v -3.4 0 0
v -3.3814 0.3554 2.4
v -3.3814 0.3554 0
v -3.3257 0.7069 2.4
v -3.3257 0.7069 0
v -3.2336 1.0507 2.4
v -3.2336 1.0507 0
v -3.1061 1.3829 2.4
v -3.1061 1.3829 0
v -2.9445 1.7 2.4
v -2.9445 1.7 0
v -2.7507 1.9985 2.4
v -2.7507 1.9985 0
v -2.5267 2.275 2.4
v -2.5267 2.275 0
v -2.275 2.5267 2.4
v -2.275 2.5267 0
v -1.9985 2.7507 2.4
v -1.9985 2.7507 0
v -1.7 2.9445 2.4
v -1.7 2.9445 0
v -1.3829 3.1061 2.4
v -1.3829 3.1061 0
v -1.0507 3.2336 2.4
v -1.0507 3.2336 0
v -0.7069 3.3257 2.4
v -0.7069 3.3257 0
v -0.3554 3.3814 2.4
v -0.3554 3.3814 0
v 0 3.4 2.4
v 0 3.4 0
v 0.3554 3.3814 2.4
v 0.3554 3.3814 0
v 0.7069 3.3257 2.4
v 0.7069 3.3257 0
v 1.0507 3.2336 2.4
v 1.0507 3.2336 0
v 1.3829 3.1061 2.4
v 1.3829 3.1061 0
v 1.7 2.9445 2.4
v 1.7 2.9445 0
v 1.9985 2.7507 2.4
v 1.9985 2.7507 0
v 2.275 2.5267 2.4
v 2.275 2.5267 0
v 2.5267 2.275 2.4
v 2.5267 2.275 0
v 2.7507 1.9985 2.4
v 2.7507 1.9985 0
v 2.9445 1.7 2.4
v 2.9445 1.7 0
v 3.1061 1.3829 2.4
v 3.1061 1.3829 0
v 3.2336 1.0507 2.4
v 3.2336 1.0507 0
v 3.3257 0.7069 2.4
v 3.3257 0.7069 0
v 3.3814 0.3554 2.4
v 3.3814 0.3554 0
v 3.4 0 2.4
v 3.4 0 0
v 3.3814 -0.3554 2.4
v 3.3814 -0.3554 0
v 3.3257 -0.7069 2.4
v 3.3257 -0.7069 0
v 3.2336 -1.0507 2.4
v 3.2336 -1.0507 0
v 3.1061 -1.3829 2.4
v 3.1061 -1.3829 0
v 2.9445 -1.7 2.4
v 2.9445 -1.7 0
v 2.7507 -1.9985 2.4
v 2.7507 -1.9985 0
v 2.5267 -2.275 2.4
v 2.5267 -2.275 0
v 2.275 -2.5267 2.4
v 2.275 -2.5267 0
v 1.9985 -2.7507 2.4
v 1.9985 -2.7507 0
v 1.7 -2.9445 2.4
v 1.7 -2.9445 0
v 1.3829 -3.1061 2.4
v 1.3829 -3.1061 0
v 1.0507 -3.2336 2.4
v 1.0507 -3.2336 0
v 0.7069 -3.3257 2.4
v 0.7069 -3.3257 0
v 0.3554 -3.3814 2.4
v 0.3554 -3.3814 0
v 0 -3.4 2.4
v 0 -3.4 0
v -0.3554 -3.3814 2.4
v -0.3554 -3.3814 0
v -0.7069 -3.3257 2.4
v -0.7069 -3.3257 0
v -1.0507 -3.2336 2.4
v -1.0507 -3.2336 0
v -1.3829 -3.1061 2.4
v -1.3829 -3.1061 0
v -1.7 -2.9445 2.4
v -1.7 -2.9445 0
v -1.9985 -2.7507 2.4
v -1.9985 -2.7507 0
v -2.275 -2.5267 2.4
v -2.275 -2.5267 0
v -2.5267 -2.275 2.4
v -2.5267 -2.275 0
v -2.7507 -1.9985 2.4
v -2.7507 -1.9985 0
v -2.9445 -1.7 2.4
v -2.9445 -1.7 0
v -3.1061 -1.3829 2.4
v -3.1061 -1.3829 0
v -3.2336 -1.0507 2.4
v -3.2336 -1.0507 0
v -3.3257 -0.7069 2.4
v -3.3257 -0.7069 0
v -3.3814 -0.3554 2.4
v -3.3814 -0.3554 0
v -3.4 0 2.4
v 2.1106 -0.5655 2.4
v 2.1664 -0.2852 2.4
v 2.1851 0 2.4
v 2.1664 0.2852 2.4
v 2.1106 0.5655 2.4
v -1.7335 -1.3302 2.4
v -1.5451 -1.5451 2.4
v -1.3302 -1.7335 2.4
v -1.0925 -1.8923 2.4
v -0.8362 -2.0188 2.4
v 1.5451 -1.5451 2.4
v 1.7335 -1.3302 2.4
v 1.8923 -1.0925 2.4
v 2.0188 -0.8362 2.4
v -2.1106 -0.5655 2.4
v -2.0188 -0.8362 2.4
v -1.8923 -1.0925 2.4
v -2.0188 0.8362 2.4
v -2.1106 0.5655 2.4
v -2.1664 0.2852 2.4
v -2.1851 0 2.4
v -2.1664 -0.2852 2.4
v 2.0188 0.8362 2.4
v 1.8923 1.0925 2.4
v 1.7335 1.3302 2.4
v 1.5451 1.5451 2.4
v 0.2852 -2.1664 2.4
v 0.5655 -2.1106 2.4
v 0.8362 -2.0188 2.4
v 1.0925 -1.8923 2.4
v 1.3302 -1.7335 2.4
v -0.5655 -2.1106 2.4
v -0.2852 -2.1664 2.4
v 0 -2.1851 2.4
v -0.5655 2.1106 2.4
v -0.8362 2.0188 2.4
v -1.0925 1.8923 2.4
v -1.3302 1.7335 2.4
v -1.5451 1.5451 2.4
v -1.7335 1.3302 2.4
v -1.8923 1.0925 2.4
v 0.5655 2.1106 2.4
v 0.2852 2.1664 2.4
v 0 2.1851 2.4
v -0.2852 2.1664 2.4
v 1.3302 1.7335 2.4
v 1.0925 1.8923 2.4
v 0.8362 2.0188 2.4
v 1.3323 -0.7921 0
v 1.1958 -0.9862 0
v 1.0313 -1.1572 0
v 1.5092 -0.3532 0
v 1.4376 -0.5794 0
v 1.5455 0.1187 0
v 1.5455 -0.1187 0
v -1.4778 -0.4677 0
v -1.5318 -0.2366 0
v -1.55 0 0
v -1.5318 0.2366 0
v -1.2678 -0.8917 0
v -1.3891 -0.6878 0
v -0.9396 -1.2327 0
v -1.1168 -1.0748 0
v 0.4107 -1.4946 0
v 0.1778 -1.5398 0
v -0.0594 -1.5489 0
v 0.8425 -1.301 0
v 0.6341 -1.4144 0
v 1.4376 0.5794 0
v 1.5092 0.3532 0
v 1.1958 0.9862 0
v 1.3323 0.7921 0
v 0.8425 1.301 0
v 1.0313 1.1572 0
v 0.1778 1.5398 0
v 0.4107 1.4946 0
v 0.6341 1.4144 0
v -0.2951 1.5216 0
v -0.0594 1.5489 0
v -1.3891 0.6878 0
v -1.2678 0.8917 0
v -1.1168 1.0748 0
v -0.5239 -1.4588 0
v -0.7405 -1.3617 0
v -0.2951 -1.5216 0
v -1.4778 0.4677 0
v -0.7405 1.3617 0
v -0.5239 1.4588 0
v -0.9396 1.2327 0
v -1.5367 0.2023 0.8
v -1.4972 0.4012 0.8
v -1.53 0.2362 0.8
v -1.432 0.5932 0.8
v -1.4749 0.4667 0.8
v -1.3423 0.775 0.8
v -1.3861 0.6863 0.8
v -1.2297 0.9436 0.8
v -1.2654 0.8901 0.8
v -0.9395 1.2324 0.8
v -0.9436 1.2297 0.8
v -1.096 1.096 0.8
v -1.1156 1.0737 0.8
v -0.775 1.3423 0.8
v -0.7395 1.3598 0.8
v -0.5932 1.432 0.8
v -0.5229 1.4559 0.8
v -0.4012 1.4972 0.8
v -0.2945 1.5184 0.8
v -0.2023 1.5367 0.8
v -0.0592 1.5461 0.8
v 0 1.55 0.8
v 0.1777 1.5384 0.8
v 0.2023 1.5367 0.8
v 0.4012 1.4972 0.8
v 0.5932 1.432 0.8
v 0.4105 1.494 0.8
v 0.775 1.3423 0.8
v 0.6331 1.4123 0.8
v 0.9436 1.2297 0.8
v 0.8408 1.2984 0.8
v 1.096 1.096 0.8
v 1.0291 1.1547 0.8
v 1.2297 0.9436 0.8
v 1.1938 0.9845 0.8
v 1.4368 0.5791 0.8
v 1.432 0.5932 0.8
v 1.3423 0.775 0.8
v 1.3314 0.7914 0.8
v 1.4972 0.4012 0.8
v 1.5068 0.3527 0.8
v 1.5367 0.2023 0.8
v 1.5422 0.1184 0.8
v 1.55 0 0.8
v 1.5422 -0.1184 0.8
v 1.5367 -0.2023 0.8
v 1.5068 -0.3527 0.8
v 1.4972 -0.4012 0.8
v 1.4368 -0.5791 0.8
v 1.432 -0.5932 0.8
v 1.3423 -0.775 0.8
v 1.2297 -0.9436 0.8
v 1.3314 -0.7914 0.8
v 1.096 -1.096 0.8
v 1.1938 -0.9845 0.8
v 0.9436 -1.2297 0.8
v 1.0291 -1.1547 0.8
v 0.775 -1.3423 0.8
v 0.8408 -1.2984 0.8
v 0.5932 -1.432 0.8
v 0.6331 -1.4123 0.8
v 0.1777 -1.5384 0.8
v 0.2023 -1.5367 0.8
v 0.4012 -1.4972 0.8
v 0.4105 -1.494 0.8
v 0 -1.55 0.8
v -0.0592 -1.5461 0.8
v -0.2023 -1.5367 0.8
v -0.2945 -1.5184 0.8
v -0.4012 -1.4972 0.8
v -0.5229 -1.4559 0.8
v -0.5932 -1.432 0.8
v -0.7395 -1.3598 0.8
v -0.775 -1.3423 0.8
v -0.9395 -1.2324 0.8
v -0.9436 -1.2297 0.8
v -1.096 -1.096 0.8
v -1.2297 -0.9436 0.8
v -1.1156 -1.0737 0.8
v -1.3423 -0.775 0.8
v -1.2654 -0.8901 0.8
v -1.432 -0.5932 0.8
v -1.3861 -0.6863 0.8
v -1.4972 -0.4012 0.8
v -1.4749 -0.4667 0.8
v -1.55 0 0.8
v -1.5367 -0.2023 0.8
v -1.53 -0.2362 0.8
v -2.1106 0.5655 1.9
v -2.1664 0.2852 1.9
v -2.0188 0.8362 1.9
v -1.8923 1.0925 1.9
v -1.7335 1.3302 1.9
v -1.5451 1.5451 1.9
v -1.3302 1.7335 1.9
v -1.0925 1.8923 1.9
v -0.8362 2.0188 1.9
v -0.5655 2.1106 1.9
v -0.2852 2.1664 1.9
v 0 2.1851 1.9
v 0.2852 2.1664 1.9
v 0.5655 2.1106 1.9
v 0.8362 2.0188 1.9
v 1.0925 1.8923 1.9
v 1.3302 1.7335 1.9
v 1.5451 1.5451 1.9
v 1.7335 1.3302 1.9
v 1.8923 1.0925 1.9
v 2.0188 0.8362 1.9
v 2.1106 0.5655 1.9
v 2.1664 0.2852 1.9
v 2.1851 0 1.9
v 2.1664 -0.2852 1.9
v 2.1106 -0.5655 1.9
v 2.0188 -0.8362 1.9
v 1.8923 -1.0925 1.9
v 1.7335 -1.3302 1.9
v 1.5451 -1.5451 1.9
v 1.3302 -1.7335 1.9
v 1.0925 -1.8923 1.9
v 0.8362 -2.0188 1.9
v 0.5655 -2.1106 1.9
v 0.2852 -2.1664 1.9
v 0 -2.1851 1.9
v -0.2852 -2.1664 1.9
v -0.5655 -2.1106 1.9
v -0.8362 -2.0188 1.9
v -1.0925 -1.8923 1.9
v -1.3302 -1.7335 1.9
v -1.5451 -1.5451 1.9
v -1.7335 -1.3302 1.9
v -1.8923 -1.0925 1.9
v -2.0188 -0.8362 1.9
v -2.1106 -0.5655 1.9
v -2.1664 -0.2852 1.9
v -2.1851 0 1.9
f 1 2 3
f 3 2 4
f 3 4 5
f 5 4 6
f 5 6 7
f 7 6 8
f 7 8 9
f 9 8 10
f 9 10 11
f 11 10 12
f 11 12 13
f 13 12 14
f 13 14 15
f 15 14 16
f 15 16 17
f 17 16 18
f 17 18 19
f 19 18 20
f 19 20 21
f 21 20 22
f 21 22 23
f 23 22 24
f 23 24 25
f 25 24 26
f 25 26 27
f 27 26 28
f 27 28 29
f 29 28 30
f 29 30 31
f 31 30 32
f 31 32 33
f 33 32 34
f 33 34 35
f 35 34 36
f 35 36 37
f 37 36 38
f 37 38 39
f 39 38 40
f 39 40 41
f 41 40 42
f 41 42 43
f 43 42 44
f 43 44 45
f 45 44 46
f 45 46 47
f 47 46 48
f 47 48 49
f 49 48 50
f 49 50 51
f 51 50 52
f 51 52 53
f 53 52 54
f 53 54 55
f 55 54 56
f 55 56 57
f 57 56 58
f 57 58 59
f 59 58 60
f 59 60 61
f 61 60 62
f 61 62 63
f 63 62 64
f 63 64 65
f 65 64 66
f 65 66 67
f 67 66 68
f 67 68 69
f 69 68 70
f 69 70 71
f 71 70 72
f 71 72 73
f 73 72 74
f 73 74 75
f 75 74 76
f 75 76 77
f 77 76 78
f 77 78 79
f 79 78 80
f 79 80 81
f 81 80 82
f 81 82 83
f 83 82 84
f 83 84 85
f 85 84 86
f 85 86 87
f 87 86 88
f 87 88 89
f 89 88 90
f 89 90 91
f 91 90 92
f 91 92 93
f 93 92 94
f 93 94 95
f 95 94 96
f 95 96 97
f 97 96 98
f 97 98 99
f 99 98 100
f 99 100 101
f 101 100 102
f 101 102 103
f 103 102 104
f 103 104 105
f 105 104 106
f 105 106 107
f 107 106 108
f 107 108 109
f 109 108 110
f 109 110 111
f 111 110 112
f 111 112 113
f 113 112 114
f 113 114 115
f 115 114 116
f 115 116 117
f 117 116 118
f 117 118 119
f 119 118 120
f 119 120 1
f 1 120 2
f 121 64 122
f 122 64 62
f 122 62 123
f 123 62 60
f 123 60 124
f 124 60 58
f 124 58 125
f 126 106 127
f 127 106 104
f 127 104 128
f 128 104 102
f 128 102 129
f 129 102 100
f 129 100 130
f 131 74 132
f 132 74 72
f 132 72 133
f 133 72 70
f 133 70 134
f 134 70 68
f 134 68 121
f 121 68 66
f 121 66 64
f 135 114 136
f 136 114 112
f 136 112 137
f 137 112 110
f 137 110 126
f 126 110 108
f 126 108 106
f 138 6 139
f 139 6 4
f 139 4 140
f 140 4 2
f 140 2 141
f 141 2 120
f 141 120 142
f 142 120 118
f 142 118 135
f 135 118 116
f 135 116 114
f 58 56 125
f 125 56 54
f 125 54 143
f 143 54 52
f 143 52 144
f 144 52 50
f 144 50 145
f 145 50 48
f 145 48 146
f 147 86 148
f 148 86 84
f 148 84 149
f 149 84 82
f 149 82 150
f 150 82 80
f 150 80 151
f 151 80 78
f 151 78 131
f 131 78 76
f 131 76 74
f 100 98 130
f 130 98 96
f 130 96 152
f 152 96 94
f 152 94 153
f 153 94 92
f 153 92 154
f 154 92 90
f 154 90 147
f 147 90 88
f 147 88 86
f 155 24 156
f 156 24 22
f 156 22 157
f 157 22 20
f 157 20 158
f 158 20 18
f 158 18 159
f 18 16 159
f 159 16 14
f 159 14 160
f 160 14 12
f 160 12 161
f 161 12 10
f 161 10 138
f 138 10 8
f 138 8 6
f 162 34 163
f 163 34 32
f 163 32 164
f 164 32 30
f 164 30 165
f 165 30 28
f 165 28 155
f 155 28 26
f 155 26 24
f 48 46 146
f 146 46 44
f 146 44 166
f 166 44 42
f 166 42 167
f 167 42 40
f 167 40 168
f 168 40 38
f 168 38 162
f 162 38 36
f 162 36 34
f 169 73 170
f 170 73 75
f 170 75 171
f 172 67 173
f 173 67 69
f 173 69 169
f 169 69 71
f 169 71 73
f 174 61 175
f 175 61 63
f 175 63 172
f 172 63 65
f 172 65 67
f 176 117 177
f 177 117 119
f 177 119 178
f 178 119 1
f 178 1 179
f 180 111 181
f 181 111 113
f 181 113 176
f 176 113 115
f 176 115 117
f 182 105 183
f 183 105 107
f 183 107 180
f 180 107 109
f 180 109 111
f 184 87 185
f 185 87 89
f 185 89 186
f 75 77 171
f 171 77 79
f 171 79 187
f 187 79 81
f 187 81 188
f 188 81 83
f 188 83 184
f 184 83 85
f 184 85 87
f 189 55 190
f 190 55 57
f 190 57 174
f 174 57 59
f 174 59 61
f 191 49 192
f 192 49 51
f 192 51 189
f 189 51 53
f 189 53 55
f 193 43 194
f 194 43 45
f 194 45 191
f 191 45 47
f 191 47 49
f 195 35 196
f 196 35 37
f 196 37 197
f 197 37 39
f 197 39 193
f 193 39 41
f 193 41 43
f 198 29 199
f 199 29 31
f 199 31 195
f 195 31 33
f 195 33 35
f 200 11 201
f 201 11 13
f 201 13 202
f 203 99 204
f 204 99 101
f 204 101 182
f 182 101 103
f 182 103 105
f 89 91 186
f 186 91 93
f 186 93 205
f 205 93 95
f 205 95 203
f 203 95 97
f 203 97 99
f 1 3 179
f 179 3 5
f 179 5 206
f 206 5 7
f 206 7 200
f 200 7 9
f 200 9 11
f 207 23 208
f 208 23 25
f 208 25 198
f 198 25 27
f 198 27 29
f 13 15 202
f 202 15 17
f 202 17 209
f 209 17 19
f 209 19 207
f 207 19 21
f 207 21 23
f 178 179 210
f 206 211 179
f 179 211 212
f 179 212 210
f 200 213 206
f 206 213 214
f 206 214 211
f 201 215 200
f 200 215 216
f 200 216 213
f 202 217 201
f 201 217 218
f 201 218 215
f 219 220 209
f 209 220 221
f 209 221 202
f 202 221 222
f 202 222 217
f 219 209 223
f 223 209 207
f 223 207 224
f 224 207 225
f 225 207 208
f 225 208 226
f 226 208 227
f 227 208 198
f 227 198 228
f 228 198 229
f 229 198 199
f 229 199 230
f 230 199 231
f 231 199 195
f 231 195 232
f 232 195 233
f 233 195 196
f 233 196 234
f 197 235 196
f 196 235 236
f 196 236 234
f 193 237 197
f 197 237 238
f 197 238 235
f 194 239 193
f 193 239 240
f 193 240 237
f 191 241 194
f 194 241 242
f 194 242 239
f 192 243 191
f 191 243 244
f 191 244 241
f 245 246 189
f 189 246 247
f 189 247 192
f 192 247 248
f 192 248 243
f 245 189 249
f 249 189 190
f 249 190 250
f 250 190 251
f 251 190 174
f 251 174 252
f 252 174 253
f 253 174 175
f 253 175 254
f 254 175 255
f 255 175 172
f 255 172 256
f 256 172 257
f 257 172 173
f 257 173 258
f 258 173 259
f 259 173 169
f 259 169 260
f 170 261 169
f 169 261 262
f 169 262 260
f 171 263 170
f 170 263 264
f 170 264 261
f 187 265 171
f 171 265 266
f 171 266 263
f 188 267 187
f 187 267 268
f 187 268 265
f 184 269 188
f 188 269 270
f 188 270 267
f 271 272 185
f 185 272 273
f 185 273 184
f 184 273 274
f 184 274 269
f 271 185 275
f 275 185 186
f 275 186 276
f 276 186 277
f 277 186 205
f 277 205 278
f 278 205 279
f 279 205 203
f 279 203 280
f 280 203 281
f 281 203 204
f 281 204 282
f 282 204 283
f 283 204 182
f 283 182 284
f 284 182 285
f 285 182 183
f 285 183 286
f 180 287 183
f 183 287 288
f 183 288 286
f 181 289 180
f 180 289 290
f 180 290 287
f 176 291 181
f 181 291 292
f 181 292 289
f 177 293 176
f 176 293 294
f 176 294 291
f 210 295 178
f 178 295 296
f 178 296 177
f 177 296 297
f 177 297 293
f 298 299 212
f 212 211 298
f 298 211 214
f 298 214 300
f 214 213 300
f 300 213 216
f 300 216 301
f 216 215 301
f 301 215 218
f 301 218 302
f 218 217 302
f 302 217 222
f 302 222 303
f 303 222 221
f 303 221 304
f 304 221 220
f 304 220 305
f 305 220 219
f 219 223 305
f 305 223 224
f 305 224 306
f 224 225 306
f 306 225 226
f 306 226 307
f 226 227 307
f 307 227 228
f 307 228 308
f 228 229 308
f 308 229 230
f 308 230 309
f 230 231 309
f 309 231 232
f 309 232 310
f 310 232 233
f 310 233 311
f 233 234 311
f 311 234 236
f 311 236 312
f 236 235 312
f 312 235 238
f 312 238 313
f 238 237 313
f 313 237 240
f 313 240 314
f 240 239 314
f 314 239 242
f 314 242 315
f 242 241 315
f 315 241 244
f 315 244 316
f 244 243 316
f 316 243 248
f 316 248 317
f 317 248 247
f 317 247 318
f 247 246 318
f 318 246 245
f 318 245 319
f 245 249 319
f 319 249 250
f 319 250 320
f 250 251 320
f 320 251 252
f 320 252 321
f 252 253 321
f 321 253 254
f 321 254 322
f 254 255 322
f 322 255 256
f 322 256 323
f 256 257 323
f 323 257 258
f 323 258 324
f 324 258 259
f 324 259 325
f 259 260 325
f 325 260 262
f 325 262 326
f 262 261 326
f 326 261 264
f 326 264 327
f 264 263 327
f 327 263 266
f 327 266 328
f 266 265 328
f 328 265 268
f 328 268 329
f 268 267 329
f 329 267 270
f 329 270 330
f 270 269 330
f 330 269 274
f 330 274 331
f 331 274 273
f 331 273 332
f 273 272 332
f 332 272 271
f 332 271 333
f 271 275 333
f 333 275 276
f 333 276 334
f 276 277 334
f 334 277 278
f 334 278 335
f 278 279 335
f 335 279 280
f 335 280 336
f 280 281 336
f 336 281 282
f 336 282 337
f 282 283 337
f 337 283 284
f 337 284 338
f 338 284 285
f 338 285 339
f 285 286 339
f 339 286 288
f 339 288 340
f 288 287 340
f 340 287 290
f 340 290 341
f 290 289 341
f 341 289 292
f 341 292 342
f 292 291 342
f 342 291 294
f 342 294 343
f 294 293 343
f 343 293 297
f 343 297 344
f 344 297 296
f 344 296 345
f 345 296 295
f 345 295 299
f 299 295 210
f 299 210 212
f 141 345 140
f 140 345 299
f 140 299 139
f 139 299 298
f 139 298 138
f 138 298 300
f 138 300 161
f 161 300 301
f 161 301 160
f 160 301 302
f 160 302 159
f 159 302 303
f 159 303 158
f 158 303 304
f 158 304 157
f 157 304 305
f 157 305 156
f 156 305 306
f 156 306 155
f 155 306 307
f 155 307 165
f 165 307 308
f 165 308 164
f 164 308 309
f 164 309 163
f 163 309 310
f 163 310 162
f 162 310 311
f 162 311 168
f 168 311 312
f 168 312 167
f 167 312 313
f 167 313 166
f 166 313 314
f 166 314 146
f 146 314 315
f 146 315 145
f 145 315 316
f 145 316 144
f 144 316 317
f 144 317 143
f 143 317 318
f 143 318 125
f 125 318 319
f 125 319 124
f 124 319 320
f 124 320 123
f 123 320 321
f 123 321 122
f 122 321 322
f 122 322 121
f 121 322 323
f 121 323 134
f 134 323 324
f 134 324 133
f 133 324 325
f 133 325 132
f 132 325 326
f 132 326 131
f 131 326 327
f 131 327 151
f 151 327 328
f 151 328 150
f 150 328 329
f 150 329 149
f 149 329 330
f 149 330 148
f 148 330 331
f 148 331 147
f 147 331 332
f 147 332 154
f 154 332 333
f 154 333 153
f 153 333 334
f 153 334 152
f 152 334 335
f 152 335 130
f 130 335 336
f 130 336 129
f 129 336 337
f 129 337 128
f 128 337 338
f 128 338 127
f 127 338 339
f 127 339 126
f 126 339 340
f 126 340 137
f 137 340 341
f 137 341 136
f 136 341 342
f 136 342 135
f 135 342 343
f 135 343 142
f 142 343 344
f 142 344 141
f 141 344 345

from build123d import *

# Parameters (mm, degrees)
SKETCH1_R           = 3.4
BOSS_EXTRUDE1_DEPTH = 2.4
SKETCH2_R           = 1.55
CUT_EXTRUDE1_DEPTH  = 0.8
SKETCH3_R           = 1.55
CUT_EXTRUDE2_DEPTH  = 1.1
CUT_EXTRUDE2_TAPER  = -30
CUT_EXTRUDE3_REACH  = 2.5
SKETCH4_R           = 2.185085296


with BuildPart() as part:
    # Sketch1 → Boss-Extrude1 (new body)
    with BuildSketch(Plane.XY):
        Circle(SKETCH1_R)
    extrude(amount=BOSS_EXTRUDE1_DEPTH)

    # Sketch2 → Cut-Extrude1 (cut)
    with BuildSketch(Plane(origin=(0, 0, 0), x_dir=(-1, 0, 0), z_dir=(0, 0, -1))):
        Circle(SKETCH2_R)
    extrude(amount=-CUT_EXTRUDE1_DEPTH, mode=Mode.SUBTRACT)

    # Sketch3 → Cut-Extrude2 (cut)
    with BuildSketch(Plane(origin=(0, 0, 0.8), x_dir=(-1, 0, 0), z_dir=(0, 0, -1))):
        Circle(SKETCH3_R)
    extrude(amount=-CUT_EXTRUDE2_DEPTH, taper=CUT_EXTRUDE2_TAPER, mode=Mode.SUBTRACT)

    # Sketch4 → Cut-Extrude3 (cut, up to next)
    with BuildSketch(Plane(origin=(0, 0, 1.9), x_dir=(-1, 0, 0), z_dir=(0, 0, -1)), mode=Mode.PRIVATE) as cut_extrude3_sk1:
        Circle(SKETCH4_R)
    cut_extrude3_tool1 = extrude(cut_extrude3_sk1.sketch, amount=-CUT_EXTRUDE3_REACH, mode=Mode.PRIVATE) & part.part
    add(cut_extrude3_tool1.solids().sort_by_distance((0, 0, 1.9))[0], mode=Mode.SUBTRACT)


solid = part.part
